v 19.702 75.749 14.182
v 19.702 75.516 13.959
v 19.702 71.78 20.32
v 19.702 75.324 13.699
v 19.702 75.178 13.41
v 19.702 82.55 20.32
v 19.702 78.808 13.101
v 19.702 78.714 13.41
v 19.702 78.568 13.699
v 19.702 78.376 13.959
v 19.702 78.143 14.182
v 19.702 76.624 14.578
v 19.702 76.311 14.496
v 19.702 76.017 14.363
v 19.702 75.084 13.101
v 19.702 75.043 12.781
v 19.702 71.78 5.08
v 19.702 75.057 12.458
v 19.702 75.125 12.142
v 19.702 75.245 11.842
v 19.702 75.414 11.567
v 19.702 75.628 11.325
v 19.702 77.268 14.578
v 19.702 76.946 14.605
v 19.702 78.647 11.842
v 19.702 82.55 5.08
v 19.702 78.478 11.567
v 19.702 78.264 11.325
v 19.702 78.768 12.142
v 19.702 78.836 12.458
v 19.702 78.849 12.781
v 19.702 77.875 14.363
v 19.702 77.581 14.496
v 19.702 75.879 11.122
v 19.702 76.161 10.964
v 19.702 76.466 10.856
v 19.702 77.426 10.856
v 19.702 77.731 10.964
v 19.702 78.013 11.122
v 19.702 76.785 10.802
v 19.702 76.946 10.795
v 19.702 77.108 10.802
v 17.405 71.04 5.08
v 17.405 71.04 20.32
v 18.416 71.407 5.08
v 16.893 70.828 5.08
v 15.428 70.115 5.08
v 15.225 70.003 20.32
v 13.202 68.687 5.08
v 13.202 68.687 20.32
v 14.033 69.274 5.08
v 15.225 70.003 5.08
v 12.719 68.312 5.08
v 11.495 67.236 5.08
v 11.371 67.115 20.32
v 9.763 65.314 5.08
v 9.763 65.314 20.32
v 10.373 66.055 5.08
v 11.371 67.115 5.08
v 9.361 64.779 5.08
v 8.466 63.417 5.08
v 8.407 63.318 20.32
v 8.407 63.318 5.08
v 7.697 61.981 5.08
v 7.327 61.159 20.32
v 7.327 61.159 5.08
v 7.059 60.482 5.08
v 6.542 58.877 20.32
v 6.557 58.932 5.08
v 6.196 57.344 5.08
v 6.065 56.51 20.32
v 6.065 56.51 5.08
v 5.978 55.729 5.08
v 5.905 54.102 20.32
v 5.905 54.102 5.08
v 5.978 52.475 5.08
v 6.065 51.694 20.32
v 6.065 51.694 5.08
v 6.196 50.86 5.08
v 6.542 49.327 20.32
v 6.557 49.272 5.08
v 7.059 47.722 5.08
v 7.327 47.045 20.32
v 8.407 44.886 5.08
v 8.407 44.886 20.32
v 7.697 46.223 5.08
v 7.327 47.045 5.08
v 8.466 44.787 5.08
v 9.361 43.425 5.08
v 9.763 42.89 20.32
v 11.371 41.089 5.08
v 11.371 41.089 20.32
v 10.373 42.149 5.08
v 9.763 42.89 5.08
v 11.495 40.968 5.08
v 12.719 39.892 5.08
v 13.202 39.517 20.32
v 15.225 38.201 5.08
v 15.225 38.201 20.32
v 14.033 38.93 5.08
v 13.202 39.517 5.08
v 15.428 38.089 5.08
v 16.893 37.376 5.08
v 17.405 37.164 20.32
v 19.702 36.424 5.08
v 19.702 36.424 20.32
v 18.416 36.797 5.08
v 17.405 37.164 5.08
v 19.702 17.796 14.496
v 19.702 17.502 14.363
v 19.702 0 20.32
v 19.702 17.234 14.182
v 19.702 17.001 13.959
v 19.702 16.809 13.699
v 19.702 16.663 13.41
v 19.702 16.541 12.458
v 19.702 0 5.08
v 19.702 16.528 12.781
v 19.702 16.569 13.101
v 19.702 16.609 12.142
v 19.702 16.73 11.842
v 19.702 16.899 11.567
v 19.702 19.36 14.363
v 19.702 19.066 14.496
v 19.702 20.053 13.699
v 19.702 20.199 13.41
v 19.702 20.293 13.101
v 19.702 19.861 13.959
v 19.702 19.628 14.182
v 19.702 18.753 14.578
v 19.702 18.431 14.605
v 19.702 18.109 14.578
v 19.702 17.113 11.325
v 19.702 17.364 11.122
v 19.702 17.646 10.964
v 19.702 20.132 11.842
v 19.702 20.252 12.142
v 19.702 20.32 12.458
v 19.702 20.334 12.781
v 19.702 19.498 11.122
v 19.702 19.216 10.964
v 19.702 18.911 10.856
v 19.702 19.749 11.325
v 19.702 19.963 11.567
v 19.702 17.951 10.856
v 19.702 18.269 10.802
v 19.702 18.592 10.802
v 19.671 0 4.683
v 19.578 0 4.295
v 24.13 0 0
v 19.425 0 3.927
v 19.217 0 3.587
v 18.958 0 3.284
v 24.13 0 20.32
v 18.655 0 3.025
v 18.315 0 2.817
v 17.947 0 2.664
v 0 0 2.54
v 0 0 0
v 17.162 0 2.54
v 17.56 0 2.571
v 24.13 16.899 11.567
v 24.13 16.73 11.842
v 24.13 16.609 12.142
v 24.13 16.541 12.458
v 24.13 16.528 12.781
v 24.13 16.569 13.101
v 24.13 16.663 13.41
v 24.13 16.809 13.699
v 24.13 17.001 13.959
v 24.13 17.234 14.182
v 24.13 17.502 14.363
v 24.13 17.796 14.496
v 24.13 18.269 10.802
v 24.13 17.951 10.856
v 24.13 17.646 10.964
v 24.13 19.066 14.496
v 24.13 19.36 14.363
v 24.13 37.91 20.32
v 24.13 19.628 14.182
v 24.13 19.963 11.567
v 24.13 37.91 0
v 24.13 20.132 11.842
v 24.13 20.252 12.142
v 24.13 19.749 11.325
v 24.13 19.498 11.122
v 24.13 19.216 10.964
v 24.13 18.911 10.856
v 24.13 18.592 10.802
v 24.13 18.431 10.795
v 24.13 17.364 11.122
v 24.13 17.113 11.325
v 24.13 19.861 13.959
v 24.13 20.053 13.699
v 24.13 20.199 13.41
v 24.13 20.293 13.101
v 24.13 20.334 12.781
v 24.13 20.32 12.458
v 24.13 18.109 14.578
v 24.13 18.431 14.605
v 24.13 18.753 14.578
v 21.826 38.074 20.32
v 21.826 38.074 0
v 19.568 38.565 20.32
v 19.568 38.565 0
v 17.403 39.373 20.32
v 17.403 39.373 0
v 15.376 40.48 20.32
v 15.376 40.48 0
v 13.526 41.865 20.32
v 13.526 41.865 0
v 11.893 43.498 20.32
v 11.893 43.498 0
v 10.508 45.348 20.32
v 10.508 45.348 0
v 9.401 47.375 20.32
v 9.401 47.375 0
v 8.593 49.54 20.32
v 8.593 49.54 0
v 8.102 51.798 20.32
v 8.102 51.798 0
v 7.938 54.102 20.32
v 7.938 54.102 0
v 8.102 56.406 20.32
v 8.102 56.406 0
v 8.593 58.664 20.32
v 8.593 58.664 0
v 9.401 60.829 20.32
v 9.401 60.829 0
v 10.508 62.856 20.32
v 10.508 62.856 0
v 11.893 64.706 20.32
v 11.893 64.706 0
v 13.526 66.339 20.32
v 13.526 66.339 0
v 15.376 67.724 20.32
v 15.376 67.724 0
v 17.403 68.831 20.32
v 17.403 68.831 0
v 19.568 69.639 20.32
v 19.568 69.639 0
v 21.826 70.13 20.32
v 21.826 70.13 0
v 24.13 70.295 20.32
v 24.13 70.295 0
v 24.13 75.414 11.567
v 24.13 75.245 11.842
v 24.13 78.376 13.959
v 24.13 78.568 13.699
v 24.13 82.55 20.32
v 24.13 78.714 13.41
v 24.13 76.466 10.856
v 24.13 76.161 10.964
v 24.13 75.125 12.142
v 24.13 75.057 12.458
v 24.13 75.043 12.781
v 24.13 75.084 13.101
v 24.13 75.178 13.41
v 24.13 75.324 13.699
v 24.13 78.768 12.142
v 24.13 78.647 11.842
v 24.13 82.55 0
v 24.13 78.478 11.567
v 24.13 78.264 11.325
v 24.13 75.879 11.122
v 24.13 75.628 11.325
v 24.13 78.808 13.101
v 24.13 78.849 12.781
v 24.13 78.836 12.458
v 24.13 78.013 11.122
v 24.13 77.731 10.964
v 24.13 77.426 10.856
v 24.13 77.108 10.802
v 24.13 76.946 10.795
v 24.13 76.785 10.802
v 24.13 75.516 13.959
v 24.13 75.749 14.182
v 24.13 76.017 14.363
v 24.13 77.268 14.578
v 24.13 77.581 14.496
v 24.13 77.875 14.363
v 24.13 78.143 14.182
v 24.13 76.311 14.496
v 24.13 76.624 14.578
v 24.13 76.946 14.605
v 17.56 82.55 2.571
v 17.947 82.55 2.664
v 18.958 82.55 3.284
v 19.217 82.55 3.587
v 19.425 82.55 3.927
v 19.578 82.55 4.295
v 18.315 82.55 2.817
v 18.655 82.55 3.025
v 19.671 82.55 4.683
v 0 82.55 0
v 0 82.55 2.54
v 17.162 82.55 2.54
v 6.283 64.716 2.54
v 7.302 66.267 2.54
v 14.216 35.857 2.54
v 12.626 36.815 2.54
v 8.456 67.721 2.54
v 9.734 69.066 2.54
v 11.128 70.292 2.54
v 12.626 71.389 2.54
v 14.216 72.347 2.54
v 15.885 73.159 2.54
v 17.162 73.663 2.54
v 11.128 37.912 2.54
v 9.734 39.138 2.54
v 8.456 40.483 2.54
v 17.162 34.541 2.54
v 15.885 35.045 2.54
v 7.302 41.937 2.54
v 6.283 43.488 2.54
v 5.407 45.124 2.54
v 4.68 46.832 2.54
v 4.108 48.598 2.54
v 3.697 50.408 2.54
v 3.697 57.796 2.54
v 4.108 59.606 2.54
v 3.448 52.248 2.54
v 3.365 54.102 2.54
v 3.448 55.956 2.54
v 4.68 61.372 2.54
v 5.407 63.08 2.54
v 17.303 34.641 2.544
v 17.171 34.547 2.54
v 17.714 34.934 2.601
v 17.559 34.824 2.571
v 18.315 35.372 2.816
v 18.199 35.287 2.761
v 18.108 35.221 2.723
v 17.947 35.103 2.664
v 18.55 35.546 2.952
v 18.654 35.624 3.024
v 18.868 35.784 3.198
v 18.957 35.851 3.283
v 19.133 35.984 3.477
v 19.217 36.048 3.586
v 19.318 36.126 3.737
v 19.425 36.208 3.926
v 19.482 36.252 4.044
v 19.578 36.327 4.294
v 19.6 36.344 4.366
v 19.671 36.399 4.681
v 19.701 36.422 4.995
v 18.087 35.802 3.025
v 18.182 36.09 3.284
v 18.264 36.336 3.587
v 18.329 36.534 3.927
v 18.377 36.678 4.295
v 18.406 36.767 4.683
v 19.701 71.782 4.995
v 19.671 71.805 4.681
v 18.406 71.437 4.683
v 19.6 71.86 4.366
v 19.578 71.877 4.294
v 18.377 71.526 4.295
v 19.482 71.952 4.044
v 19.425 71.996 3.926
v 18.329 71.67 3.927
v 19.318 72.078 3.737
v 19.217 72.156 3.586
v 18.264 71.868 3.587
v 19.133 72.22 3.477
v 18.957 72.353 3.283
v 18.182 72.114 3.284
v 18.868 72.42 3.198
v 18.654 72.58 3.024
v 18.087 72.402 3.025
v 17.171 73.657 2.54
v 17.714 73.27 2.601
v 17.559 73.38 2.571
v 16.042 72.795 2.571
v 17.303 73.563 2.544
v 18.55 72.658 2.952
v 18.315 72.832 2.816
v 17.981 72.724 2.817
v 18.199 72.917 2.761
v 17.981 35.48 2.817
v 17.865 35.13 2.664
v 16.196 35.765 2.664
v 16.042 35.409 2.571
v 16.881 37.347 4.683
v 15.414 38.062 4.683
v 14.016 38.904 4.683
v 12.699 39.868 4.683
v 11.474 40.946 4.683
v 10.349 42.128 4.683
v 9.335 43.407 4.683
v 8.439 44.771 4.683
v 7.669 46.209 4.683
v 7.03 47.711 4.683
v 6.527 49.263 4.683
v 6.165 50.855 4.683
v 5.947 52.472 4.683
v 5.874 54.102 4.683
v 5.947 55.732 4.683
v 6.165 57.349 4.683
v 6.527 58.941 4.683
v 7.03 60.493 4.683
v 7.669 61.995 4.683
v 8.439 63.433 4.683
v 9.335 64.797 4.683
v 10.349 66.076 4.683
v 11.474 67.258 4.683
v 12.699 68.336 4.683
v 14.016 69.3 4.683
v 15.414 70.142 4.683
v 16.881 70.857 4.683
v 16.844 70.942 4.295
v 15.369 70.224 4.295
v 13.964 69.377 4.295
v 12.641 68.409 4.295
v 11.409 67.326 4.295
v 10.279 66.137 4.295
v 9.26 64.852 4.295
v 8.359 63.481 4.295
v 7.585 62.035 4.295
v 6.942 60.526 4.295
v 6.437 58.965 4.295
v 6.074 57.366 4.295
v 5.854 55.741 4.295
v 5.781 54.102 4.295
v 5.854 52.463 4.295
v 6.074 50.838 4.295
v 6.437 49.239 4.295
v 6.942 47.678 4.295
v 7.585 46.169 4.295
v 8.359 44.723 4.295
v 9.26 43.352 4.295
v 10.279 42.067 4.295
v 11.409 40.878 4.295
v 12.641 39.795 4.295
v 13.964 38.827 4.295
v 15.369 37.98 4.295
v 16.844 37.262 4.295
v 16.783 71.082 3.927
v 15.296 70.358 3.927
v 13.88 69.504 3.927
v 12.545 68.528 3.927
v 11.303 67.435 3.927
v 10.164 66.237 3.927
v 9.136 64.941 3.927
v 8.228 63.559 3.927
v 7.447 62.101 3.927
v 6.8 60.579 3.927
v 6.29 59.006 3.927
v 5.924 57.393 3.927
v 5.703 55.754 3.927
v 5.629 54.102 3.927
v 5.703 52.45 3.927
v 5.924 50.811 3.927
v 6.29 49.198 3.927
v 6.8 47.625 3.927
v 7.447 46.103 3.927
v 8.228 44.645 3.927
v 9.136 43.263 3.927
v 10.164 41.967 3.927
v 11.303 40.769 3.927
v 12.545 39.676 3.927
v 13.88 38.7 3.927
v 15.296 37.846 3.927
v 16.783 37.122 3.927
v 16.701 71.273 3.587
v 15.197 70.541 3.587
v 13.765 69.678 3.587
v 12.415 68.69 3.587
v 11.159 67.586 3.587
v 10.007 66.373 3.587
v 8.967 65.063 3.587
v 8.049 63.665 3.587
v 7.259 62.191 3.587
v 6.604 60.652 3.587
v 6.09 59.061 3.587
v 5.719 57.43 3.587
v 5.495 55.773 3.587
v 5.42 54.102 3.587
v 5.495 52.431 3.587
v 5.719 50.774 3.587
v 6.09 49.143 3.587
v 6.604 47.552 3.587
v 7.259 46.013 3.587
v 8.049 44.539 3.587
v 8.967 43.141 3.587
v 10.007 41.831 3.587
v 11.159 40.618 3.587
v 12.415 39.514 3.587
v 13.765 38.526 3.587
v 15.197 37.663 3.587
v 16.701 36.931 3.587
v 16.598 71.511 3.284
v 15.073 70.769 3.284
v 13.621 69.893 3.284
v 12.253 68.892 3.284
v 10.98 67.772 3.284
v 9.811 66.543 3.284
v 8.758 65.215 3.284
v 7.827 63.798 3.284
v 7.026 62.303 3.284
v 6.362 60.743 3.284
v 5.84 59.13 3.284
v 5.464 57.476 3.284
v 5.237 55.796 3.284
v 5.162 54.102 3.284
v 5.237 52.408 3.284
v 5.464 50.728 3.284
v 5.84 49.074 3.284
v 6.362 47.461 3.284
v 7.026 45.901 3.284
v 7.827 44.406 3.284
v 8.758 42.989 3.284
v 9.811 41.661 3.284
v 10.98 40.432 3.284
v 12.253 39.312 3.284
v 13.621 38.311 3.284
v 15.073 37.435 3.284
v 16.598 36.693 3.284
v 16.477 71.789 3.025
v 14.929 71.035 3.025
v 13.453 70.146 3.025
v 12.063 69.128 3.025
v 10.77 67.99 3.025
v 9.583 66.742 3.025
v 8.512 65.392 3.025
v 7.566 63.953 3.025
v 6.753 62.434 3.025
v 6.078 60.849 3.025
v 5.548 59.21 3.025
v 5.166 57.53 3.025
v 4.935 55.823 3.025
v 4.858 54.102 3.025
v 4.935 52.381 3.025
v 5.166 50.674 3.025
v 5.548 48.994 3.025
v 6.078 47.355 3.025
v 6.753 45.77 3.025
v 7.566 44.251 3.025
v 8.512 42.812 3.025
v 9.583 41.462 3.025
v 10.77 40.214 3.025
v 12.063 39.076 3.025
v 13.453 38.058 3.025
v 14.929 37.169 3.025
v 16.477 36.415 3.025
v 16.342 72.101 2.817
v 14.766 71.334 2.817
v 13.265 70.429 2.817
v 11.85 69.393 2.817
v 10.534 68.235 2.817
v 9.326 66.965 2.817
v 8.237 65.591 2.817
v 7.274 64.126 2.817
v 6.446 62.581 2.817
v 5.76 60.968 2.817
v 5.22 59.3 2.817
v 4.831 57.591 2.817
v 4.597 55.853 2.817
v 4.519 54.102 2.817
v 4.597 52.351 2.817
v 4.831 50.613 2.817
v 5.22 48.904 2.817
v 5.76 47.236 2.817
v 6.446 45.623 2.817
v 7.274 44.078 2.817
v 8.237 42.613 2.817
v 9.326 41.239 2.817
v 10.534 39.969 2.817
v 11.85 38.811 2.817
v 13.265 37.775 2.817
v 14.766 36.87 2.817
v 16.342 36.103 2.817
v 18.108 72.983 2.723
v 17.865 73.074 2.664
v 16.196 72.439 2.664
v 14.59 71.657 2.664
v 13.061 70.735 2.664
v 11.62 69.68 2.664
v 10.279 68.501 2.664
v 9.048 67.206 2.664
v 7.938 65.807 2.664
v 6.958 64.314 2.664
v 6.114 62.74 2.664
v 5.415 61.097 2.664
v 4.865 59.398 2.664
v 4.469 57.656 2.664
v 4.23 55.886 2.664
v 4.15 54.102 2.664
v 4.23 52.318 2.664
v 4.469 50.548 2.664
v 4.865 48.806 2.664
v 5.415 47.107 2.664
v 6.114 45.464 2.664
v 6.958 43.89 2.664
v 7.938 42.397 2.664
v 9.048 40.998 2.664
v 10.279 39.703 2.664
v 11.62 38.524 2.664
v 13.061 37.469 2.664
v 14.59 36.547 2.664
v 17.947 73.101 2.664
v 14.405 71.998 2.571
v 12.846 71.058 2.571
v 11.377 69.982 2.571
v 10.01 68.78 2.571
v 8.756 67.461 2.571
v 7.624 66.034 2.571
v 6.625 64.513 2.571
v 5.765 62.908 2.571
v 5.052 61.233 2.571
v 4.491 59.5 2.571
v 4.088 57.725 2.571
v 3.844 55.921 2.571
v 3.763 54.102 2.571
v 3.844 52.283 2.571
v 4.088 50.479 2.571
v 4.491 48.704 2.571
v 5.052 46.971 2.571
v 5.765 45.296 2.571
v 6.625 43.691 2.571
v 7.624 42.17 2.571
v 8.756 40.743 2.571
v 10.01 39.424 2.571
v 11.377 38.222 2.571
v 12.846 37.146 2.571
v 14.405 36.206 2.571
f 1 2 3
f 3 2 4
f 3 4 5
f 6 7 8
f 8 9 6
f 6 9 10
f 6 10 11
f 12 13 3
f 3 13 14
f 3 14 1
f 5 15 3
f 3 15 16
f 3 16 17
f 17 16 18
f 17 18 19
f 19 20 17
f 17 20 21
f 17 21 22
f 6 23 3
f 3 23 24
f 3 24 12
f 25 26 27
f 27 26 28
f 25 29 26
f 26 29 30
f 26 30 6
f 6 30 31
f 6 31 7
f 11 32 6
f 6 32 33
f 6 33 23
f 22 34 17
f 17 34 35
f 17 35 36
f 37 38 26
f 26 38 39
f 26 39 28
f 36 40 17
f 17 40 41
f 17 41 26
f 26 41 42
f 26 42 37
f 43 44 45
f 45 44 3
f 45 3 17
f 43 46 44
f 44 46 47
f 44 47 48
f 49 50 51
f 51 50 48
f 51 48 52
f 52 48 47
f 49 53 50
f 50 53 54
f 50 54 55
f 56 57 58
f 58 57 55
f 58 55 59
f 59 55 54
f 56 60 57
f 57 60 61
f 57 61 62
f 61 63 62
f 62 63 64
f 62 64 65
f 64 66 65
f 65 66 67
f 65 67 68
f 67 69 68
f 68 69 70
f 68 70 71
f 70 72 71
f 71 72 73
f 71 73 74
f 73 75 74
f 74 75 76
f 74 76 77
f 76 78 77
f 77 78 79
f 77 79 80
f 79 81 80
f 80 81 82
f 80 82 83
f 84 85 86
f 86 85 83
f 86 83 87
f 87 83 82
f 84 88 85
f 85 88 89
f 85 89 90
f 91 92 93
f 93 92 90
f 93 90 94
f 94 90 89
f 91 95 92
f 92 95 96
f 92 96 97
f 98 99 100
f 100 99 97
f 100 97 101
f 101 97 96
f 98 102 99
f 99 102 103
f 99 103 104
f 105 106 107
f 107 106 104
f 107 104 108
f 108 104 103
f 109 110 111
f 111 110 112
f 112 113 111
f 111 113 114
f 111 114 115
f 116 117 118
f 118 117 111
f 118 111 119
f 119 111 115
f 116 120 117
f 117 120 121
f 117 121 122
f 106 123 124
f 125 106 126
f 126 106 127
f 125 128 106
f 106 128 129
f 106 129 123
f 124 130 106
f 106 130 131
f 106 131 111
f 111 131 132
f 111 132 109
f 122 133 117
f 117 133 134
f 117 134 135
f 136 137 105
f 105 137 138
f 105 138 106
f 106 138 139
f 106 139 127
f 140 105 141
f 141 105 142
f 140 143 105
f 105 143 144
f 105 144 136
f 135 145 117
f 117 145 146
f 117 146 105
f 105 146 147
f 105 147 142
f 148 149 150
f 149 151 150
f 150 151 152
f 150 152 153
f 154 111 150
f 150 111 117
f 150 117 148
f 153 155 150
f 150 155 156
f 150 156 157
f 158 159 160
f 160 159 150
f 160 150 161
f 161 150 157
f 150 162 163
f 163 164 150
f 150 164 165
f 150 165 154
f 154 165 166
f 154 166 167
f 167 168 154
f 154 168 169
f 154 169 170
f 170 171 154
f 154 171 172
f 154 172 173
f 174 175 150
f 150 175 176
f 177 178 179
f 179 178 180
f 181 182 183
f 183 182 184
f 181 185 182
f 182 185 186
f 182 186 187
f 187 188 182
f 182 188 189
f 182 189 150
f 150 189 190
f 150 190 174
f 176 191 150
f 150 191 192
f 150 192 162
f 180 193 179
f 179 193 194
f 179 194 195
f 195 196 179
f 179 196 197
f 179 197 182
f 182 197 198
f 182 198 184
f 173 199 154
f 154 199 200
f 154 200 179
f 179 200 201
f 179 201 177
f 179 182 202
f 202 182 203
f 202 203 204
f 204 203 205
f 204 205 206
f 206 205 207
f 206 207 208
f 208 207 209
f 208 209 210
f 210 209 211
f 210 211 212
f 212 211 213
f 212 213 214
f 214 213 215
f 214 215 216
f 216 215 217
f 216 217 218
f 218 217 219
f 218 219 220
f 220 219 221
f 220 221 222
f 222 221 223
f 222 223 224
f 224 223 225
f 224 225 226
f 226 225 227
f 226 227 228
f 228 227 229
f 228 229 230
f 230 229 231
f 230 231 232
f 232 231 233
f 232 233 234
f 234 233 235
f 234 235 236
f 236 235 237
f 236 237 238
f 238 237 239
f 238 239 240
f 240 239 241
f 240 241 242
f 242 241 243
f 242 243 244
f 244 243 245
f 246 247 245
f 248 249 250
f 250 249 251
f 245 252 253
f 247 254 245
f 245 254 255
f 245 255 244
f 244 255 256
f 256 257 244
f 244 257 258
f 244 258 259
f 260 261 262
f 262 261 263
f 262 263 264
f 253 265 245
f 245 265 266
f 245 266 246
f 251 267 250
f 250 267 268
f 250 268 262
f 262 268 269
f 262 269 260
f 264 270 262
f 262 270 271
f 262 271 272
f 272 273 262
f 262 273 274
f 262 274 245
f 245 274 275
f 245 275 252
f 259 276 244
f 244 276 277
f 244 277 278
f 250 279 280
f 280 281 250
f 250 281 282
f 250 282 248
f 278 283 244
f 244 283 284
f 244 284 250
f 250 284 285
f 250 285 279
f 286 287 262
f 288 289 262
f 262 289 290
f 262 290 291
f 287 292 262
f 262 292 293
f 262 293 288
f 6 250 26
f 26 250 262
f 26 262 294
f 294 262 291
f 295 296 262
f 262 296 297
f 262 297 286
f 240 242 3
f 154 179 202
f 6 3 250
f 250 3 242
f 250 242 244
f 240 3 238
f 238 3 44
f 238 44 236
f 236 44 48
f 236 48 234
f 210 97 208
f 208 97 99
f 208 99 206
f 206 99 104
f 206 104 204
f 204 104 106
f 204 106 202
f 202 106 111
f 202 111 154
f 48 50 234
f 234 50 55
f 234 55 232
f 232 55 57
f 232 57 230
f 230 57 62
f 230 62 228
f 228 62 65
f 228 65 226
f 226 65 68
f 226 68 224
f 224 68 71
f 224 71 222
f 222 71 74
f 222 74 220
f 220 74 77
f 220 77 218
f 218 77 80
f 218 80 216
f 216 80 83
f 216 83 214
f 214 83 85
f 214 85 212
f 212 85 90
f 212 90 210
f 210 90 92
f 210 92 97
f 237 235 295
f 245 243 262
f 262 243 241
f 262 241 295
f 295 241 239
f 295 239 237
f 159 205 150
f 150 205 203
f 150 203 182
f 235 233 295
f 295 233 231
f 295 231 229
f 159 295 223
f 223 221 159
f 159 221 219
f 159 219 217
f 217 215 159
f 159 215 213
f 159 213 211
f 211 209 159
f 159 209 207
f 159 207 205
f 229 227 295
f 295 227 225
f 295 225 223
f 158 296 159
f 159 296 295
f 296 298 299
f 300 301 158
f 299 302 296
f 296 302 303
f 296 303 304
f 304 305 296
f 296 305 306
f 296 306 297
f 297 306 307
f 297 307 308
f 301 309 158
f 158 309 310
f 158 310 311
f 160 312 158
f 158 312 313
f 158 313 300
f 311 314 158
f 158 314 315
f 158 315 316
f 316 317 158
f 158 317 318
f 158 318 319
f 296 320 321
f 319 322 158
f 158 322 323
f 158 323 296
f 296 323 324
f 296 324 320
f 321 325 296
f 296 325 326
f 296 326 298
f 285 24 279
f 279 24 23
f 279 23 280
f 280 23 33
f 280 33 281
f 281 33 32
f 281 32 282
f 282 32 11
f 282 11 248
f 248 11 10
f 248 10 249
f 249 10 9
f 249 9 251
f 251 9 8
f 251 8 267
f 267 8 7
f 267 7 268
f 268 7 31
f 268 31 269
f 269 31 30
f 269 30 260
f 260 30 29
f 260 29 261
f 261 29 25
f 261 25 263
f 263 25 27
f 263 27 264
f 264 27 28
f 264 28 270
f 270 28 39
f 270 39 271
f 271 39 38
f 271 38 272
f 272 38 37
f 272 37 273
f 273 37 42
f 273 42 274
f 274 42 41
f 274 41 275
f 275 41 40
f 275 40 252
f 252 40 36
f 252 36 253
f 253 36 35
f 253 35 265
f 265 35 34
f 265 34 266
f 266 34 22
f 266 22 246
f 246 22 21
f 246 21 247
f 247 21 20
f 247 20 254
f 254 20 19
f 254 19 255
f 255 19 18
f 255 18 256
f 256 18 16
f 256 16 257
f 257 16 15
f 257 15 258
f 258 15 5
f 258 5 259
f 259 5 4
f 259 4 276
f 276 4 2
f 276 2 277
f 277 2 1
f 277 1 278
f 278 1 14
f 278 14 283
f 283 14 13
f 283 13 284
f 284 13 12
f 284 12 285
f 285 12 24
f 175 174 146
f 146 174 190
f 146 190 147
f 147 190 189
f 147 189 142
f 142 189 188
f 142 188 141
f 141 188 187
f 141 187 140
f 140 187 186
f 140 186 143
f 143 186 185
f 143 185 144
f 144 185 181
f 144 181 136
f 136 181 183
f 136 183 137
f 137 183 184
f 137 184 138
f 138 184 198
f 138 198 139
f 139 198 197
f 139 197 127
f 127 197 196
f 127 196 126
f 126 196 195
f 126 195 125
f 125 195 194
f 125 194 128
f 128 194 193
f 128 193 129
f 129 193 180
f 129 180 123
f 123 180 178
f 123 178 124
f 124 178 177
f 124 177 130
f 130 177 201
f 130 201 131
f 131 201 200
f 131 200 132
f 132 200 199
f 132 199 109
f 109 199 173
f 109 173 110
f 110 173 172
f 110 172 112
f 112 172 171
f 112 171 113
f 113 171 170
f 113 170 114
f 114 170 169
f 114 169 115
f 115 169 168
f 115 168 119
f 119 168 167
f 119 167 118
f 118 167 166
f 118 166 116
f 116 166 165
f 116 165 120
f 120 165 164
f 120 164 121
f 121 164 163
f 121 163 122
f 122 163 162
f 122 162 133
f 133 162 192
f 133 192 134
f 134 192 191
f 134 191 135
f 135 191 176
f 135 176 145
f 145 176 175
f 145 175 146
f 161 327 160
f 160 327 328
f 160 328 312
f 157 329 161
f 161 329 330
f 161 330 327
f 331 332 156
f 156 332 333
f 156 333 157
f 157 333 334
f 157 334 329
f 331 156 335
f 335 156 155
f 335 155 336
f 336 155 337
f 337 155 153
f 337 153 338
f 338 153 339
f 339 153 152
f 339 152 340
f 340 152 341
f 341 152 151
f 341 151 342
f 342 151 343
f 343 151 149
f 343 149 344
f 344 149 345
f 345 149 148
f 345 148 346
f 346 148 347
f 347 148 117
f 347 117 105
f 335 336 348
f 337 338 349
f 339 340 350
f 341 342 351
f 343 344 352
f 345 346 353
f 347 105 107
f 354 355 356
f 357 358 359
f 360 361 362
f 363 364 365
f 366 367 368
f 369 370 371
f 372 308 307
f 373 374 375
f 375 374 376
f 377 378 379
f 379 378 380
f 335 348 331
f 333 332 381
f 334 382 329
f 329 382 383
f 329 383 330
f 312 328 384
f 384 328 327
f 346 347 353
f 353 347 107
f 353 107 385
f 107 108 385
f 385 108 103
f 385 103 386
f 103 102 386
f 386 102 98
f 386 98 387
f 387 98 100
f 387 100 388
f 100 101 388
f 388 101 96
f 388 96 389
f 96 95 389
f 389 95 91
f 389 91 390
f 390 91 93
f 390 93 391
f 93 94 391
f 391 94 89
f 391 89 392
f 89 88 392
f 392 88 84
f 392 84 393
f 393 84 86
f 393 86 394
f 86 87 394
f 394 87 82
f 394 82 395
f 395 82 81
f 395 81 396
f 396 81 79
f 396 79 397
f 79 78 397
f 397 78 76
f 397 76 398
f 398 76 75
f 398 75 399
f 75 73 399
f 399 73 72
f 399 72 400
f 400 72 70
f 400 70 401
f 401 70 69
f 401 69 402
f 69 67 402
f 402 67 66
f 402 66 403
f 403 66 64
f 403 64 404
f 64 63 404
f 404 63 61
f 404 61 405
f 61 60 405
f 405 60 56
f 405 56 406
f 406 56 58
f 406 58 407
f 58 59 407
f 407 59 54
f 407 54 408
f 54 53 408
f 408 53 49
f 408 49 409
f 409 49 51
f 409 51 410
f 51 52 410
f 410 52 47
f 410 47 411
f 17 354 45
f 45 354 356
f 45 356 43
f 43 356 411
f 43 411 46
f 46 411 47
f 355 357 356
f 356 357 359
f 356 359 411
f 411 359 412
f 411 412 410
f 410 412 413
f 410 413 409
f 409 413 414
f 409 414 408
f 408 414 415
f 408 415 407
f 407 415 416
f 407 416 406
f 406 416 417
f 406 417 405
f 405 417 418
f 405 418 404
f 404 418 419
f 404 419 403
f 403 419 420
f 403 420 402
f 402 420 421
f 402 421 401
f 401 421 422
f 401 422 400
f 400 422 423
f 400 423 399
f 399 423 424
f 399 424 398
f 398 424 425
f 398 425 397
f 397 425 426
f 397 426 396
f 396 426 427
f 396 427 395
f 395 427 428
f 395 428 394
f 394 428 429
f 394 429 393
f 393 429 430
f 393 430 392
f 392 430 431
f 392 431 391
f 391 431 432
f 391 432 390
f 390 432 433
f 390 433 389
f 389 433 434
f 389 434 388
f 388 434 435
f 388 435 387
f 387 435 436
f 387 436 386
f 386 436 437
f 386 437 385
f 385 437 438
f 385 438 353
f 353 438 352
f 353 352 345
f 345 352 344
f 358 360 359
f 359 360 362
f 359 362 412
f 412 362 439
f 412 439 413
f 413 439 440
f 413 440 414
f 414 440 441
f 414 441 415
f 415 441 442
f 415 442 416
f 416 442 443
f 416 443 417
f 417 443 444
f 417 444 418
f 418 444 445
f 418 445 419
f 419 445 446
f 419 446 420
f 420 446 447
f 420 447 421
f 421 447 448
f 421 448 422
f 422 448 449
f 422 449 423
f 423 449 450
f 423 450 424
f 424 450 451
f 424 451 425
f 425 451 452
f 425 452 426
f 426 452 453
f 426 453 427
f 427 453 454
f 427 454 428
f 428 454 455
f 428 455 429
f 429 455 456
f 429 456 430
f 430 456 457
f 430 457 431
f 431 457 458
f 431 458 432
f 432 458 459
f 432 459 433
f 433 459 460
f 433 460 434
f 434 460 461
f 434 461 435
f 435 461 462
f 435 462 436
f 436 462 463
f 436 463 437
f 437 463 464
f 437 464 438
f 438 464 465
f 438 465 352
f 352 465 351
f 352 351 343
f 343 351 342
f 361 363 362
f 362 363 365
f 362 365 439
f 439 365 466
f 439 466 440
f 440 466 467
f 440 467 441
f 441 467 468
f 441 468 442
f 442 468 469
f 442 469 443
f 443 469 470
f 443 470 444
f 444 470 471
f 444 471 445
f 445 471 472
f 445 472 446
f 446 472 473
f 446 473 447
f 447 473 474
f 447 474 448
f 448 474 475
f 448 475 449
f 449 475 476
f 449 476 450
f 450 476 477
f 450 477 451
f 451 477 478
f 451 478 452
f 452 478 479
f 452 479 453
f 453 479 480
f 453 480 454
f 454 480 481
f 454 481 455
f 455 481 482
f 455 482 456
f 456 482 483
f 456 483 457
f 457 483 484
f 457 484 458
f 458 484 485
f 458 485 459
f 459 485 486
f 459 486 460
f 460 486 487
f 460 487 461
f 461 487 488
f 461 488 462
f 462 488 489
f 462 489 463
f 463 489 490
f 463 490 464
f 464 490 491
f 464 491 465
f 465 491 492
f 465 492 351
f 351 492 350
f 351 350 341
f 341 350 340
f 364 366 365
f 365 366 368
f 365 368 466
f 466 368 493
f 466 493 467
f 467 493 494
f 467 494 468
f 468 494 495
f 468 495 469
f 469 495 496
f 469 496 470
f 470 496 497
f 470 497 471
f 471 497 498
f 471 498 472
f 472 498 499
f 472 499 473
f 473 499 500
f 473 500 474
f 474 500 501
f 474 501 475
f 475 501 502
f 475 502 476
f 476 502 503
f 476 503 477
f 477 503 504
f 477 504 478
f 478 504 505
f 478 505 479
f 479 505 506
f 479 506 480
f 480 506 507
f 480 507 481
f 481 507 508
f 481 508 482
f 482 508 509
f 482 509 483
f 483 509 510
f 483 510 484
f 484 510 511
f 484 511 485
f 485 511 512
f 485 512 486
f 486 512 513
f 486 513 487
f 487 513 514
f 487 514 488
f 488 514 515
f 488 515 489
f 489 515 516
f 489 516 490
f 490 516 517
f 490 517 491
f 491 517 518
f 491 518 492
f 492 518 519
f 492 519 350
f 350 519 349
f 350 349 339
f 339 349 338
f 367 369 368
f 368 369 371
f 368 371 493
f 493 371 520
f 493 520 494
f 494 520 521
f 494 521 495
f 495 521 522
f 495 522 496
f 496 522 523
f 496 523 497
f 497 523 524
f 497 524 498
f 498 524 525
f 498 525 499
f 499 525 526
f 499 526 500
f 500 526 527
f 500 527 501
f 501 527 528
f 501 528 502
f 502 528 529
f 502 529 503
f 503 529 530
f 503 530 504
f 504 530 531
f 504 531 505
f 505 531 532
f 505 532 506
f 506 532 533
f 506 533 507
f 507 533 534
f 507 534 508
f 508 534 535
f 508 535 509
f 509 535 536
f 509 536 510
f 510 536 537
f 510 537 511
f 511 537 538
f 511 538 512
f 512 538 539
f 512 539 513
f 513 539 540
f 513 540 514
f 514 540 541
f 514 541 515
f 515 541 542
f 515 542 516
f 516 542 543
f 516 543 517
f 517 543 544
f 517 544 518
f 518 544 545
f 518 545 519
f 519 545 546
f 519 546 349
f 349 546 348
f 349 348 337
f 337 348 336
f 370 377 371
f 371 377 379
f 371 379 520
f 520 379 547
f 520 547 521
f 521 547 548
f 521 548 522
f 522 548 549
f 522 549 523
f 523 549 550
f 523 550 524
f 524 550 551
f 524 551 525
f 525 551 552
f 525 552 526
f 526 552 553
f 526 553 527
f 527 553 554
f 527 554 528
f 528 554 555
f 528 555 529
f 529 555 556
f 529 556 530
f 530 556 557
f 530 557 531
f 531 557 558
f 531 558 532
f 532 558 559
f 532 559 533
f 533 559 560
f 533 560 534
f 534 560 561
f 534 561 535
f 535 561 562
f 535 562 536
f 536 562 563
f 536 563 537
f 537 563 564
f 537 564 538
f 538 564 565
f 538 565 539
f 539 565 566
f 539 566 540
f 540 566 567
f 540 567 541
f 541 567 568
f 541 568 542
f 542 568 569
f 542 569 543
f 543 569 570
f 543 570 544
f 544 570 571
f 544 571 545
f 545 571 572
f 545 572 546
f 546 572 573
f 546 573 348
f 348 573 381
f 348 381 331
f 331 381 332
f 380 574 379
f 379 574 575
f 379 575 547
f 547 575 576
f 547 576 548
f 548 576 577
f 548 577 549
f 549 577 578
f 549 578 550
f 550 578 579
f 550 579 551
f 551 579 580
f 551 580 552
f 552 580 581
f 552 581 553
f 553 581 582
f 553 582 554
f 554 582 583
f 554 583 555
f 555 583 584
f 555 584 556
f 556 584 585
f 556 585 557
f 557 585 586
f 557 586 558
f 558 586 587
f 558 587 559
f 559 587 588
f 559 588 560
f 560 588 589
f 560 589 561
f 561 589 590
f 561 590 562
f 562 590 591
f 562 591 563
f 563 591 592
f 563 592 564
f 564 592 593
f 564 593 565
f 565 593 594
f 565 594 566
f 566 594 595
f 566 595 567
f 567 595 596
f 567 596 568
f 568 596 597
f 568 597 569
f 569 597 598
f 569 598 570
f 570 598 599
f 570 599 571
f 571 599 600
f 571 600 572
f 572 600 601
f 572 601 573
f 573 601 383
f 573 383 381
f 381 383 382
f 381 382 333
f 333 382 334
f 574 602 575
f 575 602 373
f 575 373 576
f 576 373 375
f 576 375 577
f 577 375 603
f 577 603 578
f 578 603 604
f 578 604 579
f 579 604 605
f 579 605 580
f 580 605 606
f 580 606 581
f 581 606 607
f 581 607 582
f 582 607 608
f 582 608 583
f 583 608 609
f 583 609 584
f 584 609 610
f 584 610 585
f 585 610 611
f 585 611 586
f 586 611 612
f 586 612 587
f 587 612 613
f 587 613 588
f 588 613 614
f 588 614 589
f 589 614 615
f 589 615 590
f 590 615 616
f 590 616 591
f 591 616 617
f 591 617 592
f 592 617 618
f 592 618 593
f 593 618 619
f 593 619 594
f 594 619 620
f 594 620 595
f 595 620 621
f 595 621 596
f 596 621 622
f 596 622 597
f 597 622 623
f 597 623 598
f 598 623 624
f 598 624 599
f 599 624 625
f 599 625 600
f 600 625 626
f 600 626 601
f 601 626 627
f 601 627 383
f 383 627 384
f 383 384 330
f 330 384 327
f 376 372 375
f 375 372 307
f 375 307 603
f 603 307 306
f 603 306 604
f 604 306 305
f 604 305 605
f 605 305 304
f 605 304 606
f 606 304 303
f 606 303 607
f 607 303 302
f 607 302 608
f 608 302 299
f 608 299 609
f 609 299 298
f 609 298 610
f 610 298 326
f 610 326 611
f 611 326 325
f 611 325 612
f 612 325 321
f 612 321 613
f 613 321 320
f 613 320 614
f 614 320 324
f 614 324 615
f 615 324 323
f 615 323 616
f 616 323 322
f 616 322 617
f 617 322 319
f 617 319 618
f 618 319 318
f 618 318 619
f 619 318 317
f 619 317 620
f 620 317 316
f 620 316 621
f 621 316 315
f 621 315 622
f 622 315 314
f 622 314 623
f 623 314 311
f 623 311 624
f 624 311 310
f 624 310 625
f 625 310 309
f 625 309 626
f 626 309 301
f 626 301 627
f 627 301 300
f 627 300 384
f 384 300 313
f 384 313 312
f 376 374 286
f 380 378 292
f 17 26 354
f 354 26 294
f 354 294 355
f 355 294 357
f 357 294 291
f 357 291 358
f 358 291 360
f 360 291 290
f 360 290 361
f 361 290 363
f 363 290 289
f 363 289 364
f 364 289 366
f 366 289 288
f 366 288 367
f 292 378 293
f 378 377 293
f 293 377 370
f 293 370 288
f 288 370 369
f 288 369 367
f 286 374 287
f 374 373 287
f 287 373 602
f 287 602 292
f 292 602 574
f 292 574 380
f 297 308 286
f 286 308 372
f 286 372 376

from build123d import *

# Parameters (mm, degrees)
BOSS_EXTRUDE5_DEPTH     = 20.32
BOSS_EXTRUDE6_DEPTH     = 2.54
SKETCH3_R               = 1.905
CUT_EXTRUDE3_DEPTH      = 25.13
CUT_EXTRUDE3_DEPTH_BACK = 1
FILLET3_R               = 2.54


with BuildPart() as part:
    # Sketch2 → Boss-Extrude5 (new body)
    with BuildSketch(Plane.XY):
        with BuildLine():
            Line((19.702242383, 36.423556552), (19.702242383, 0))
            Line((19.702242383, 0), (24.13, 0))
            Line((24.13, 0), (24.13, 37.9095))
            ThreePointArc((24.13, 37.9095), (7.9375, 54.102), (24.13, 70.2945))
            Line((24.13, 70.2945), (24.13, 82.55))
            Line((24.13, 82.55), (19.702242383, 82.55))
            Line((19.702242383, 82.55), (19.702242383, 71.780443448))
            ThreePointArc((19.702242383, 71.780443448), (5.9055, 54.102), (19.702242383, 36.423556552))
        make_face()
    extrude(amount=BOSS_EXTRUDE5_DEPTH)

    # Sketch2<7> → Boss-Extrude6 (add)
    with BuildSketch(Plane.XY):
        with BuildLine():
            Line((0, 82.55), (0, 0))
            Line((0, 0), (19.702242383, 0))
            Line((19.702242383, 0), (19.702242383, 36.423556552))
            ThreePointArc((19.702242383, 36.423556552), (5.9055, 54.102), (19.702242383, 71.780443448))
            Line((19.702242383, 71.780443448), (19.702242383, 82.55))
            Line((19.702242383, 82.55), (0, 82.55))
        make_face()
    extrude(amount=BOSS_EXTRUDE6_DEPTH)

    # Sketch3 → Cut-Extrude3 (cut, two sides)
    with BuildSketch(Plane(origin=(0, 0, 0), x_dir=(0, 0, -1), z_dir=(1, 0, 0))) as cut_extrude3_sk:
        with Locations((-12.7, 18.430889618)):
            Circle(SKETCH3_R)
        with Locations((-12.7, 76.946110382)):
            Circle(SKETCH3_R)
    extrude(amount=CUT_EXTRUDE3_DEPTH, mode=Mode.SUBTRACT)
    extrude(cut_extrude3_sk.sketch, amount=-CUT_EXTRUDE3_DEPTH_BACK, mode=Mode.SUBTRACT)

    # Fillet3
    fillet3_edges = [part.edges().sort_by_distance(p)[0] for p in [
        (5.9055, 54.102, 2.54),
        (19.702242383, 77.165221724, 2.54),
        (19.702242383, 18.211778276, 2.54),
    ]]
    fillet(fillet3_edges, radius=FILLET3_R)


solid = part.part
